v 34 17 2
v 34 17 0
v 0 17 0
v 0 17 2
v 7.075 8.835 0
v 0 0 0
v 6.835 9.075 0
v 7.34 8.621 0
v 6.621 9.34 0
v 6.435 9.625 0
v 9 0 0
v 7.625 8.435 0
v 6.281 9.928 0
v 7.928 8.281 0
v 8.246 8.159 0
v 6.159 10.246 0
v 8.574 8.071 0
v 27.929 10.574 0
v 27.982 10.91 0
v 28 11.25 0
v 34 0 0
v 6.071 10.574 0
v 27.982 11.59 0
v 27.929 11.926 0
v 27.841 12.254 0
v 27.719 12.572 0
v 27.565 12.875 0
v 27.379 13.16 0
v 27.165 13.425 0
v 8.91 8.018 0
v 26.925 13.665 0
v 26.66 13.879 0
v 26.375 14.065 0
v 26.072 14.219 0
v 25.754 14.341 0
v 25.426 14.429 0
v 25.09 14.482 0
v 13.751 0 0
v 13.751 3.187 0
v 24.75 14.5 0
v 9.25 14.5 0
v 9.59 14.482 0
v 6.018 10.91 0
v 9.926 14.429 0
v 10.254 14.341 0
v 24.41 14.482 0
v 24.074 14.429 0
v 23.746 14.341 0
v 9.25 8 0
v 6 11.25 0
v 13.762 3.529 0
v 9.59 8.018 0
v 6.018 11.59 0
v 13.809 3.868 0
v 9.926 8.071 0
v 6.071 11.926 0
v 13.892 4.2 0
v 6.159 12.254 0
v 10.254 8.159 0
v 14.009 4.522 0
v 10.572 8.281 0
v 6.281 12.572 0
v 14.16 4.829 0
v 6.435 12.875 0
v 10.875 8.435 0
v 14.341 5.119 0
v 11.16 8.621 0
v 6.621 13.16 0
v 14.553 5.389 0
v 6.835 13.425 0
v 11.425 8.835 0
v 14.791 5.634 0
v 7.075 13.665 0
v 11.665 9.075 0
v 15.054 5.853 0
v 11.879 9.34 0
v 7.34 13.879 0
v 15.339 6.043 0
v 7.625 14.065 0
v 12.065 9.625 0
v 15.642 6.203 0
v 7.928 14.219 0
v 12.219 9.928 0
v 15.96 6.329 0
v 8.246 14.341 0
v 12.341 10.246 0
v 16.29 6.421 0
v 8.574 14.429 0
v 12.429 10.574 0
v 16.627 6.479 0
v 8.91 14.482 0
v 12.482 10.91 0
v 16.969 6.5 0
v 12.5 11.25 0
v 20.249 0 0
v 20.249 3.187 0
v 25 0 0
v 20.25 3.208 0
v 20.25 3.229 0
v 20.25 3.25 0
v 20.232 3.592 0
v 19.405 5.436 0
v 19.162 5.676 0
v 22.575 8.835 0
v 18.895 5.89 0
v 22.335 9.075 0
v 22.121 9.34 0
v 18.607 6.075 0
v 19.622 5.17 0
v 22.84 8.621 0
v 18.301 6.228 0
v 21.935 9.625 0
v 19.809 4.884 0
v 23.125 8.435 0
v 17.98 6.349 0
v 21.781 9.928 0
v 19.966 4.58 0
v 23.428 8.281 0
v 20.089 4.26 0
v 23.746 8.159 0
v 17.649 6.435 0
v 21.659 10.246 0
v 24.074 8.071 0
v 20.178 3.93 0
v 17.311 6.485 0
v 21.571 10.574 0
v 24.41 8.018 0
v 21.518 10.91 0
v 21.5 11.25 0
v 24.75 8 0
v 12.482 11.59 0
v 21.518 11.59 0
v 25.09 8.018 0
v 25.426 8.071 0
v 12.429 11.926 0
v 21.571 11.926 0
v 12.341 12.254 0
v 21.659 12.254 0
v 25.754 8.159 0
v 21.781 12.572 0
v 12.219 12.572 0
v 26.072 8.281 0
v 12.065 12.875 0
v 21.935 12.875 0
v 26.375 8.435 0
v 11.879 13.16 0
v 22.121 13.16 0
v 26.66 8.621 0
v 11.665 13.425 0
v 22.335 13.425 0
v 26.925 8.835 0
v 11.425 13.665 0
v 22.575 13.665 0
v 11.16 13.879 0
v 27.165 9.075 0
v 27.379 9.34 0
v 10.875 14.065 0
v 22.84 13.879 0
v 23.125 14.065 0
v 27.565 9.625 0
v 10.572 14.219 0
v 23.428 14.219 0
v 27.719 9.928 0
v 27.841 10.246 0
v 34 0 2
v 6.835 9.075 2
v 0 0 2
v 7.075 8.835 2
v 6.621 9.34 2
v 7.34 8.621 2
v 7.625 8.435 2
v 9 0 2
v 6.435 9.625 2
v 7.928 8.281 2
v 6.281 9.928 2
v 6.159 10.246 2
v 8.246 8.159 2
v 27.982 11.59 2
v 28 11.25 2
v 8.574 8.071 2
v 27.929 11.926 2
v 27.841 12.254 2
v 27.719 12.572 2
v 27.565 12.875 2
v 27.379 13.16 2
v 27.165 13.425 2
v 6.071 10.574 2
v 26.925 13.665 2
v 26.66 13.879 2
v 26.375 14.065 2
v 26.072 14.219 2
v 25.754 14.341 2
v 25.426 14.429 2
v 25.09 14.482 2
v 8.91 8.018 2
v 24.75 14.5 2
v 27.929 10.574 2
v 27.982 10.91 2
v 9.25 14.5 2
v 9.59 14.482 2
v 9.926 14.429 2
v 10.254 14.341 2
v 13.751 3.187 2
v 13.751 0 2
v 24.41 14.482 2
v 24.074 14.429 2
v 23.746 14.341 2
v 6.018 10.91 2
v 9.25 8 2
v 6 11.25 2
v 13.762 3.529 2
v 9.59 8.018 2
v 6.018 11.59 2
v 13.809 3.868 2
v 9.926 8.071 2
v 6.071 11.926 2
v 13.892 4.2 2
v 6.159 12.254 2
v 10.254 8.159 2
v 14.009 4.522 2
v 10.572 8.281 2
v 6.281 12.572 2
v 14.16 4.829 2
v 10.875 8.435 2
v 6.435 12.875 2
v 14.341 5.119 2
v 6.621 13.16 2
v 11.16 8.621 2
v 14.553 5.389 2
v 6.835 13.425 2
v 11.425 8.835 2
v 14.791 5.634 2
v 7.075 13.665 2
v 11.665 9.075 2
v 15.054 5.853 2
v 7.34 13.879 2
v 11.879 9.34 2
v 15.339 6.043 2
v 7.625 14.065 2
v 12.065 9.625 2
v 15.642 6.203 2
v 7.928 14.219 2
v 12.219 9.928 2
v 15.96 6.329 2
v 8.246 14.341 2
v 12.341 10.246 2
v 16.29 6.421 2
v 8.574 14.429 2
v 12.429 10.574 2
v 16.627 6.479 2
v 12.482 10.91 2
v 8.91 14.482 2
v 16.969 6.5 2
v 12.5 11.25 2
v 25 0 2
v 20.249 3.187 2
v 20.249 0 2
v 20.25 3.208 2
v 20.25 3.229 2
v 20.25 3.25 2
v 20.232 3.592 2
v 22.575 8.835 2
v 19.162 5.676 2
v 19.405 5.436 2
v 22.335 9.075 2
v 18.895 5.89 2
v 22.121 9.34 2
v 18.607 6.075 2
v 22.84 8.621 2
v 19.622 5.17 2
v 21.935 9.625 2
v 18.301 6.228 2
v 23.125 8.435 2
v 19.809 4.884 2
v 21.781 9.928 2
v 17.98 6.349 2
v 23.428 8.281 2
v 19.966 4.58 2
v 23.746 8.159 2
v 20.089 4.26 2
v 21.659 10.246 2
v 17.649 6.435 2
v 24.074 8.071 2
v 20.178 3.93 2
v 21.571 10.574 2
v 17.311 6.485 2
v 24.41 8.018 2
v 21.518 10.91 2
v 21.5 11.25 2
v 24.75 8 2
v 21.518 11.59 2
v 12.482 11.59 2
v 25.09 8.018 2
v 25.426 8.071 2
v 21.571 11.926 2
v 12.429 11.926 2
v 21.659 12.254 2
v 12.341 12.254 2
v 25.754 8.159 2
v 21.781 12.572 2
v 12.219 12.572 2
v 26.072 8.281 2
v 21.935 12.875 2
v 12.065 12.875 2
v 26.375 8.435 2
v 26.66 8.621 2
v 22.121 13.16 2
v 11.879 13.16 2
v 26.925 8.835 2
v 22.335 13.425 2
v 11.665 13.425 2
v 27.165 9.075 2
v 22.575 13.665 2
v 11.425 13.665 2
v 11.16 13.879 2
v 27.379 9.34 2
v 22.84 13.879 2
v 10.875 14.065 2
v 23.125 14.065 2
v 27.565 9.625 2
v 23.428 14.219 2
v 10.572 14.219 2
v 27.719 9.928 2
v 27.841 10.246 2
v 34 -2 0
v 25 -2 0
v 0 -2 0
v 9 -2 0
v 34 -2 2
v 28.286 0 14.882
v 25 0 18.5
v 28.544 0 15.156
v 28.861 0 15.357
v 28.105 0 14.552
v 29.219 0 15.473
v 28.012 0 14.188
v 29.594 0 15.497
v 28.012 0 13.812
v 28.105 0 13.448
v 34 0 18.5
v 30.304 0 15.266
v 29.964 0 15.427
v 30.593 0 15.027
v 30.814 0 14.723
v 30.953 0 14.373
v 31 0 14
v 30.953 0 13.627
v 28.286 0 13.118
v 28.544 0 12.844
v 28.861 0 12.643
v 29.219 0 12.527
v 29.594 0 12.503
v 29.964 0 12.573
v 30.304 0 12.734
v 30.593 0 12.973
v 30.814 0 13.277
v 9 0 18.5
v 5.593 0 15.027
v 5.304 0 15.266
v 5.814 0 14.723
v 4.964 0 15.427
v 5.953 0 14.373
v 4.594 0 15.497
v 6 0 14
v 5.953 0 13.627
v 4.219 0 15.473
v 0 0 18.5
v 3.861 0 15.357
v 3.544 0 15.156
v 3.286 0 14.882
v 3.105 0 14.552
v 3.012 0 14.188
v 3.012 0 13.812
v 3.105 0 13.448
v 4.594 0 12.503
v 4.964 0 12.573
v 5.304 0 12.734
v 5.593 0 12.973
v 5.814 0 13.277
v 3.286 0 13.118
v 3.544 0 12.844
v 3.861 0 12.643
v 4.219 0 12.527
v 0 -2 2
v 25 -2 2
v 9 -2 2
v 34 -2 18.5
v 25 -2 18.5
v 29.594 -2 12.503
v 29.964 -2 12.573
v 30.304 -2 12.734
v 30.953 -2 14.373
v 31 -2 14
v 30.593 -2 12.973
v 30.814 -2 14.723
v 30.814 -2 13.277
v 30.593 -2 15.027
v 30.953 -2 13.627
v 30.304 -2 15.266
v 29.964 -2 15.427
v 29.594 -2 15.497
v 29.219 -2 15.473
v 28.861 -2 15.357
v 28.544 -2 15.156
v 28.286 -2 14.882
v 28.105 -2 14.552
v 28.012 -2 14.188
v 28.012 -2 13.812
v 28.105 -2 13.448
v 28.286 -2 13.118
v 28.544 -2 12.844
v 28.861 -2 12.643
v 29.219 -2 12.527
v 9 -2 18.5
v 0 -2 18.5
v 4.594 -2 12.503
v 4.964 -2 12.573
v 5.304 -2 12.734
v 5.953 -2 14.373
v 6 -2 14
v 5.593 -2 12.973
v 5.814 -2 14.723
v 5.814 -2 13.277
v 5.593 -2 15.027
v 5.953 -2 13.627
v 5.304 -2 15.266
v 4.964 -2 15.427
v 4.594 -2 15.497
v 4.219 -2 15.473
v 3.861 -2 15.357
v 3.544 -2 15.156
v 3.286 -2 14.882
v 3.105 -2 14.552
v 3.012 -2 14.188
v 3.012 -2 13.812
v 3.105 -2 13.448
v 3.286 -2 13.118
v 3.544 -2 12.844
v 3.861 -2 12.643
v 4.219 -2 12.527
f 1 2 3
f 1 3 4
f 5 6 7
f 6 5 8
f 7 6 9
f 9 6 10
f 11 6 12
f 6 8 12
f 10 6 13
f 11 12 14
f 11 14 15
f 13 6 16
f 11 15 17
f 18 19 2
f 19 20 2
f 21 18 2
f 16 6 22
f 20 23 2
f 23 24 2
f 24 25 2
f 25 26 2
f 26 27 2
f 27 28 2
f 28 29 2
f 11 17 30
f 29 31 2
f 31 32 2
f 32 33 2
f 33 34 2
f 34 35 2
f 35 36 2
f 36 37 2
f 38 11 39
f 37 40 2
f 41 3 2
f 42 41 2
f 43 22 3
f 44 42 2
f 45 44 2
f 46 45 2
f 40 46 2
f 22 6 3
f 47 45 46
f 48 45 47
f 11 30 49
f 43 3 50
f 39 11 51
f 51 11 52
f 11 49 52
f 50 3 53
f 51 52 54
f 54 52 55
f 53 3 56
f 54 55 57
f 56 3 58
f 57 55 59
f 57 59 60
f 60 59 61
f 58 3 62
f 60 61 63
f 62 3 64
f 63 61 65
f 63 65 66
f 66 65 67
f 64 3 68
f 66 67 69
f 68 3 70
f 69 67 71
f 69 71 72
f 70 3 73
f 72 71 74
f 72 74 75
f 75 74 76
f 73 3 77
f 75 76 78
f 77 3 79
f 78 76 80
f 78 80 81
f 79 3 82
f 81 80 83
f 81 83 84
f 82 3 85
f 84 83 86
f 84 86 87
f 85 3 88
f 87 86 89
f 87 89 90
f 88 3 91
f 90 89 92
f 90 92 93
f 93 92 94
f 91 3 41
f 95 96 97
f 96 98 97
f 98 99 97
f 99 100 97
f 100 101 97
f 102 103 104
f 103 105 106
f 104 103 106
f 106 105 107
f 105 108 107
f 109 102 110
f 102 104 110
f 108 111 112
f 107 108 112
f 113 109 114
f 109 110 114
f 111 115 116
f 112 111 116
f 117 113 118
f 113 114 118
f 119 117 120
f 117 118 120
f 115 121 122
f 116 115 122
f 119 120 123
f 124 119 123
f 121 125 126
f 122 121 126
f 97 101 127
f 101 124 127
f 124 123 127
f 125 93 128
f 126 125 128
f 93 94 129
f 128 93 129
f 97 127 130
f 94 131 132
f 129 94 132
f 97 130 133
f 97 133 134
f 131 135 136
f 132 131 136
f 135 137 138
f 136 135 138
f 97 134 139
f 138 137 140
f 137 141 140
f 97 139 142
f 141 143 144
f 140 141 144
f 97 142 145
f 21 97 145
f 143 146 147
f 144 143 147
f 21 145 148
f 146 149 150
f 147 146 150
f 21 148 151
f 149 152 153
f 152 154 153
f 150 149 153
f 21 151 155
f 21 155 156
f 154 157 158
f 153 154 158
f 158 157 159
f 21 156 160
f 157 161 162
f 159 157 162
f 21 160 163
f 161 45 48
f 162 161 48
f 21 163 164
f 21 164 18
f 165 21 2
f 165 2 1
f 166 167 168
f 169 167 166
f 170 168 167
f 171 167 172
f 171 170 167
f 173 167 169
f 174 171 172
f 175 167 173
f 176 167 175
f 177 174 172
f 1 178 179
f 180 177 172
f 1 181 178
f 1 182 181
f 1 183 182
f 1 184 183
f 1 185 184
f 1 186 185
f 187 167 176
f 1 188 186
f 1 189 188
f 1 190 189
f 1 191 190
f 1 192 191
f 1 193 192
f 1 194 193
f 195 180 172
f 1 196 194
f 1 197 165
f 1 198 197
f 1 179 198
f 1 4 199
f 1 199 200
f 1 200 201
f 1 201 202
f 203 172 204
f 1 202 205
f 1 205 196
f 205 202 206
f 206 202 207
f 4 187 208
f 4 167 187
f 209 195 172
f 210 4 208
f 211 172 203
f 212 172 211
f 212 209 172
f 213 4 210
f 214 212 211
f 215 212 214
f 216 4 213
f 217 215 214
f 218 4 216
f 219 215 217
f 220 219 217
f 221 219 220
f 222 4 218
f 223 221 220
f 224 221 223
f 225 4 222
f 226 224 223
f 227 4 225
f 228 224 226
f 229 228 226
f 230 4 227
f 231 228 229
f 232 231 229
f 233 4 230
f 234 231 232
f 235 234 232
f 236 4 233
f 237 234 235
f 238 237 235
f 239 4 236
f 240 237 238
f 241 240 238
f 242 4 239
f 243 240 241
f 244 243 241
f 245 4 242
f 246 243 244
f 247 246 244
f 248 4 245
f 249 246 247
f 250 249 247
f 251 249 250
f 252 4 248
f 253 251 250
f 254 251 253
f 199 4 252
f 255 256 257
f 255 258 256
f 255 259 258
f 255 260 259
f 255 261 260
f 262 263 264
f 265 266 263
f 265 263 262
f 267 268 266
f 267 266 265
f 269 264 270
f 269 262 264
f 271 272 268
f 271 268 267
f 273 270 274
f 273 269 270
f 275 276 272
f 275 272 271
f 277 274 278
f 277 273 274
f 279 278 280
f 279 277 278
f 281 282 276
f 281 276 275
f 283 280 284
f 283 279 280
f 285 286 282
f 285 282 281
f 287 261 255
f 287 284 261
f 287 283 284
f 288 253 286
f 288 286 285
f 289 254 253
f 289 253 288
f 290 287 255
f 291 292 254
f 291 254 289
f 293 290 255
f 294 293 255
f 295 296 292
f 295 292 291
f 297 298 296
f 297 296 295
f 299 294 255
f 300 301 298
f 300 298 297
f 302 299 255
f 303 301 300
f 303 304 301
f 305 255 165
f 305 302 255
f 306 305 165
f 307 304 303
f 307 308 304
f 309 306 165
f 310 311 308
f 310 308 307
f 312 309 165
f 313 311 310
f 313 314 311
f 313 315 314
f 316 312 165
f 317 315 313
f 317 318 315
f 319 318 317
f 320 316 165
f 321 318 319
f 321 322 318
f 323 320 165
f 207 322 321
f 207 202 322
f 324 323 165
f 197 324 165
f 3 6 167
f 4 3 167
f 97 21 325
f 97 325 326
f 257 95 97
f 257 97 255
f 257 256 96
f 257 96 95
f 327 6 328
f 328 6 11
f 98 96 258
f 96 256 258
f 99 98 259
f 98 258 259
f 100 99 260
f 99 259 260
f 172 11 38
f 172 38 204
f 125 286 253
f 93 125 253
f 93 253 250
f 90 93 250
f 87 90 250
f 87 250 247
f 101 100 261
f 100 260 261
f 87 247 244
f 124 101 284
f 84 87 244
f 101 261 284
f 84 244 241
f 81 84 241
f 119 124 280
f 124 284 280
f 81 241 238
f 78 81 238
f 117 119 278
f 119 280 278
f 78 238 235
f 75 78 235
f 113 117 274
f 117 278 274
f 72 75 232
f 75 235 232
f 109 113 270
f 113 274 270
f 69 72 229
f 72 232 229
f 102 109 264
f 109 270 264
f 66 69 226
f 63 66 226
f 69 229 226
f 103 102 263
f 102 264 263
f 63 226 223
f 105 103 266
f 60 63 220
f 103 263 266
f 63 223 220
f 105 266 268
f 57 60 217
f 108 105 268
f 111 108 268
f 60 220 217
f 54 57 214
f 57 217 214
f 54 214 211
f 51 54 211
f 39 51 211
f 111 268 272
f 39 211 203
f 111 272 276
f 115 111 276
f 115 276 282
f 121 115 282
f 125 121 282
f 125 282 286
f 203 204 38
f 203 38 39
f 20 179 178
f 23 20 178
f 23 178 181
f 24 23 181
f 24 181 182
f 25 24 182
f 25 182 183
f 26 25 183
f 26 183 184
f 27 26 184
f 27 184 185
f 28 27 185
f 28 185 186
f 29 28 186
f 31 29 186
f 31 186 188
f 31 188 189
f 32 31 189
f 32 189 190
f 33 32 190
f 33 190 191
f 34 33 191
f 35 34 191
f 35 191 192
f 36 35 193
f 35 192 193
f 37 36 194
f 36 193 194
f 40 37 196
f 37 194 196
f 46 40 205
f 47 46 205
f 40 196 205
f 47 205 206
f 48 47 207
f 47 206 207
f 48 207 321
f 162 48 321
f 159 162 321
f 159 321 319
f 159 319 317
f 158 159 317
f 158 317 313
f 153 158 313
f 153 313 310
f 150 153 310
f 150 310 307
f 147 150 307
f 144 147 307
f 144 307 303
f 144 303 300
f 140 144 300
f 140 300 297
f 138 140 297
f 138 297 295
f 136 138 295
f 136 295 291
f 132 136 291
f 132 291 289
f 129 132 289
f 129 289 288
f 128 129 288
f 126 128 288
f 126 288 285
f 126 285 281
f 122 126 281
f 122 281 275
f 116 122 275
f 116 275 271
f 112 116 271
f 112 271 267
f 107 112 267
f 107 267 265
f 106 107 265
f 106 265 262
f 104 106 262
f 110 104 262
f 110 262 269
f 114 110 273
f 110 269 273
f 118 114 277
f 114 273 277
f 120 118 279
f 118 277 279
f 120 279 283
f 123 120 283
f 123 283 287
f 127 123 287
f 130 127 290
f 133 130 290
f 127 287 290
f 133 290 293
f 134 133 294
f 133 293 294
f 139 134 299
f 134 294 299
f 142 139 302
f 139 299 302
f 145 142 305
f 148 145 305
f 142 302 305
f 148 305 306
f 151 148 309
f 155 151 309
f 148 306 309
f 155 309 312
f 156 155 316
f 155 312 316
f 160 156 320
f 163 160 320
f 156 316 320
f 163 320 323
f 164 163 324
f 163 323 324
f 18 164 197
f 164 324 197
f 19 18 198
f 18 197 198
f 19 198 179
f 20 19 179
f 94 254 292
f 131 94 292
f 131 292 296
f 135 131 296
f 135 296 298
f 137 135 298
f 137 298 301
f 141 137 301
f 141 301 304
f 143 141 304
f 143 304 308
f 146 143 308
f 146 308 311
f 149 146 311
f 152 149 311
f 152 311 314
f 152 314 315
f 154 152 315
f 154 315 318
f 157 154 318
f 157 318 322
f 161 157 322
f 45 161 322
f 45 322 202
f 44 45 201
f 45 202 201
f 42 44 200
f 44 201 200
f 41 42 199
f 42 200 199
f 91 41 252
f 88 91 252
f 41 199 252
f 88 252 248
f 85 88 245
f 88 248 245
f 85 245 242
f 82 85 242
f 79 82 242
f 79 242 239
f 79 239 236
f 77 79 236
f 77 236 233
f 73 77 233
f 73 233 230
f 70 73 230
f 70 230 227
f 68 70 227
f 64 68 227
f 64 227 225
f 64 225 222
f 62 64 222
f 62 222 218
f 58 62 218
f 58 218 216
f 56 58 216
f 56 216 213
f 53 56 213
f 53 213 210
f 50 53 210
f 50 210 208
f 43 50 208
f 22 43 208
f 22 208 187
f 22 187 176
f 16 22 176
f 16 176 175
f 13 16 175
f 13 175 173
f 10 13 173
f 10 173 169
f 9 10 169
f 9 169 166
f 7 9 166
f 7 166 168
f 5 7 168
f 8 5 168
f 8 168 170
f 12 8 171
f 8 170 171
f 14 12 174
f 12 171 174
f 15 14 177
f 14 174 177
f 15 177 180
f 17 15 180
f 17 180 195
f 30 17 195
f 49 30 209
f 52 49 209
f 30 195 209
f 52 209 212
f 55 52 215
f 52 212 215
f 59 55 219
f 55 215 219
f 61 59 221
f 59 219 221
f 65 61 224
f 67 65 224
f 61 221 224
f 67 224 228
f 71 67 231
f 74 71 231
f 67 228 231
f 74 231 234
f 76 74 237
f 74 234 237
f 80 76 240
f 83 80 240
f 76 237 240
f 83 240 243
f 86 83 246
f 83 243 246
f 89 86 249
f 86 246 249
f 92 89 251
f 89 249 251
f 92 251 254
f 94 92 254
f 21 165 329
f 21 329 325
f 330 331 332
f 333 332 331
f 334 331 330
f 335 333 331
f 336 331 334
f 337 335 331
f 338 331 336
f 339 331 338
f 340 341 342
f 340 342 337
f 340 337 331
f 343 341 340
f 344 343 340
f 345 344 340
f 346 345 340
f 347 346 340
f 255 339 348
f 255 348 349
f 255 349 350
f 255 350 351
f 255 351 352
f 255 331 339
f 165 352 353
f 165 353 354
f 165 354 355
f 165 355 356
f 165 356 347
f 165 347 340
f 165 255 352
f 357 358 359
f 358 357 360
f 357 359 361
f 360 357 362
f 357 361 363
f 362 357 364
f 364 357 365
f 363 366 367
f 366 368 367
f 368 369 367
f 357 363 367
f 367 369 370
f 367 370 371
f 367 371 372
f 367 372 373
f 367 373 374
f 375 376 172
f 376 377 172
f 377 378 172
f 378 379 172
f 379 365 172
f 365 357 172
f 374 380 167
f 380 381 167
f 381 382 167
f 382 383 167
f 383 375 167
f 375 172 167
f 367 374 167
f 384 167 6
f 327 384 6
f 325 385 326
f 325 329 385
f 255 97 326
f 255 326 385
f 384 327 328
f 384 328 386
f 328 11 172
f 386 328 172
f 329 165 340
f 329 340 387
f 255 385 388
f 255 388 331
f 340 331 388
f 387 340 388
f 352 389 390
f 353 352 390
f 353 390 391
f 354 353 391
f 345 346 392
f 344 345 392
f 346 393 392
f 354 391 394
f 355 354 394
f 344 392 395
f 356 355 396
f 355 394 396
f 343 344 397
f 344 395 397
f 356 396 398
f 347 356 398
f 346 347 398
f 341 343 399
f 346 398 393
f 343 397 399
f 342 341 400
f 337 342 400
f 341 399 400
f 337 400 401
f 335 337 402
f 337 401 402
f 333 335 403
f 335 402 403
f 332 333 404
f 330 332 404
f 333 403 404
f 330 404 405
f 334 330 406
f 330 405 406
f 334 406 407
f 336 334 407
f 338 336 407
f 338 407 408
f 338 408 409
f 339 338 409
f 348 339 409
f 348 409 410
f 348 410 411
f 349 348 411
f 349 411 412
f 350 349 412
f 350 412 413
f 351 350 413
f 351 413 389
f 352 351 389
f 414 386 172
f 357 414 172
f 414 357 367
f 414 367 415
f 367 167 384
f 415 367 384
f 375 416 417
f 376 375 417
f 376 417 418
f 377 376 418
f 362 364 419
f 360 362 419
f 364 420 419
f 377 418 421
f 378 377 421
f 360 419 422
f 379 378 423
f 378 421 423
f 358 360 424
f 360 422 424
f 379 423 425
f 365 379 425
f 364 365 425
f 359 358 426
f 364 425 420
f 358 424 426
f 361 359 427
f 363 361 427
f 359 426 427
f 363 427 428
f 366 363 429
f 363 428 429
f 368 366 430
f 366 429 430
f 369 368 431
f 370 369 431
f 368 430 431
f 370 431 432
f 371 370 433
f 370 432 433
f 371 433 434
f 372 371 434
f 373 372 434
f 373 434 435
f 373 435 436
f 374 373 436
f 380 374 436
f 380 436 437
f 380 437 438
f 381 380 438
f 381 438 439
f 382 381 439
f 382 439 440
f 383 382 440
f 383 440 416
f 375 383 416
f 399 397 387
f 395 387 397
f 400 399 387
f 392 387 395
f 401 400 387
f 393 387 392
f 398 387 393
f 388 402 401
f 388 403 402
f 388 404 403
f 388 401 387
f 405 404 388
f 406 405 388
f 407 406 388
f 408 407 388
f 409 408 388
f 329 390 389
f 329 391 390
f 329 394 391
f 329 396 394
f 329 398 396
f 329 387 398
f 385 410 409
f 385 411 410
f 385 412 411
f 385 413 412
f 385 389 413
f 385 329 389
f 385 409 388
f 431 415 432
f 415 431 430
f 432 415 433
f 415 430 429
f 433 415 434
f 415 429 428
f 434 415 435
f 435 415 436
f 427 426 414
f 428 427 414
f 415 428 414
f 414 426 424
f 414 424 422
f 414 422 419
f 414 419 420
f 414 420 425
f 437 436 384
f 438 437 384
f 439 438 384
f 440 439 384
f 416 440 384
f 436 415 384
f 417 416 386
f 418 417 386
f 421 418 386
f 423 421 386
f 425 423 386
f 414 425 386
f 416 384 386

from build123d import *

# Parameters (mm, degrees)
BOX_W           = 34
BOX_H           = 17
BOX_DEPTH       = 2
SKETCH_R        = 3.25
POCKET_DEPTH    = 2
SKETCH001_W     = 6.498788
SKETCH001_H     = 3.187234
POCKET001_DEPTH = 2
SKETCH002_W     = 9
SKETCH002_H     = 2
PAD_DEPTH       = 2
SKETCH003_W     = 9
SKETCH003_H     = 2
PAD001_DEPTH    = 16.5
SKETCH004_R     = 1.5
POCKET002_DEPTH = 2


with BuildPart() as part:
    # Box → Box (new body)
    with BuildSketch(Plane.XY):
        with Locations((17, 8.5)):
            Rectangle(BOX_W, BOX_H)
    extrude(amount=BOX_DEPTH)

    # Sketch → Pocket (cut)
    with BuildSketch(Plane.XY.offset(2)):
        with Locations((9.25, 11.25)):
            Circle(SKETCH_R)
        with Locations((24.75, 11.25)):
            Circle(SKETCH_R)
        with Locations((17, 3.25)):
            Circle(SKETCH_R)
    extrude(amount=-POCKET_DEPTH, mode=Mode.SUBTRACT)

    # Sketch001 → Pocket001 (cut)
    with BuildSketch(Plane.XY.offset(2)):
        with Locations((17, 1.593617)):
            Rectangle(SKETCH001_W, SKETCH001_H)
    extrude(amount=-POCKET001_DEPTH, mode=Mode.SUBTRACT)

    # Sketch002 → Pad (new body)
    with BuildSketch(Plane.XZ):
        with Locations((4.5, 1)):
            Rectangle(SKETCH002_W, SKETCH002_H)
        with Locations((29.5, 1)):
            Rectangle(SKETCH002_W, SKETCH002_H)
    extrude(amount=PAD_DEPTH)

    # Sketch003 → Pad001 (new body)
    with BuildSketch(Plane.XY.offset(2)):
        with Locations((4.5, -1)):
            Rectangle(SKETCH003_W, SKETCH003_H)
        with Locations((29.5, -1)):
            Rectangle(SKETCH003_W, SKETCH003_H)
    extrude(amount=PAD001_DEPTH)

    # Sketch004 → Pocket002 (cut)
    with BuildSketch(Plane.XZ.offset(2)):
        with Locations((4.5, 14)):
            Circle(SKETCH004_R)
        with Locations((29.5, 14)):
            Circle(SKETCH004_R)
    extrude(amount=-POCKET002_DEPTH, mode=Mode.SUBTRACT)


solid = part.part
